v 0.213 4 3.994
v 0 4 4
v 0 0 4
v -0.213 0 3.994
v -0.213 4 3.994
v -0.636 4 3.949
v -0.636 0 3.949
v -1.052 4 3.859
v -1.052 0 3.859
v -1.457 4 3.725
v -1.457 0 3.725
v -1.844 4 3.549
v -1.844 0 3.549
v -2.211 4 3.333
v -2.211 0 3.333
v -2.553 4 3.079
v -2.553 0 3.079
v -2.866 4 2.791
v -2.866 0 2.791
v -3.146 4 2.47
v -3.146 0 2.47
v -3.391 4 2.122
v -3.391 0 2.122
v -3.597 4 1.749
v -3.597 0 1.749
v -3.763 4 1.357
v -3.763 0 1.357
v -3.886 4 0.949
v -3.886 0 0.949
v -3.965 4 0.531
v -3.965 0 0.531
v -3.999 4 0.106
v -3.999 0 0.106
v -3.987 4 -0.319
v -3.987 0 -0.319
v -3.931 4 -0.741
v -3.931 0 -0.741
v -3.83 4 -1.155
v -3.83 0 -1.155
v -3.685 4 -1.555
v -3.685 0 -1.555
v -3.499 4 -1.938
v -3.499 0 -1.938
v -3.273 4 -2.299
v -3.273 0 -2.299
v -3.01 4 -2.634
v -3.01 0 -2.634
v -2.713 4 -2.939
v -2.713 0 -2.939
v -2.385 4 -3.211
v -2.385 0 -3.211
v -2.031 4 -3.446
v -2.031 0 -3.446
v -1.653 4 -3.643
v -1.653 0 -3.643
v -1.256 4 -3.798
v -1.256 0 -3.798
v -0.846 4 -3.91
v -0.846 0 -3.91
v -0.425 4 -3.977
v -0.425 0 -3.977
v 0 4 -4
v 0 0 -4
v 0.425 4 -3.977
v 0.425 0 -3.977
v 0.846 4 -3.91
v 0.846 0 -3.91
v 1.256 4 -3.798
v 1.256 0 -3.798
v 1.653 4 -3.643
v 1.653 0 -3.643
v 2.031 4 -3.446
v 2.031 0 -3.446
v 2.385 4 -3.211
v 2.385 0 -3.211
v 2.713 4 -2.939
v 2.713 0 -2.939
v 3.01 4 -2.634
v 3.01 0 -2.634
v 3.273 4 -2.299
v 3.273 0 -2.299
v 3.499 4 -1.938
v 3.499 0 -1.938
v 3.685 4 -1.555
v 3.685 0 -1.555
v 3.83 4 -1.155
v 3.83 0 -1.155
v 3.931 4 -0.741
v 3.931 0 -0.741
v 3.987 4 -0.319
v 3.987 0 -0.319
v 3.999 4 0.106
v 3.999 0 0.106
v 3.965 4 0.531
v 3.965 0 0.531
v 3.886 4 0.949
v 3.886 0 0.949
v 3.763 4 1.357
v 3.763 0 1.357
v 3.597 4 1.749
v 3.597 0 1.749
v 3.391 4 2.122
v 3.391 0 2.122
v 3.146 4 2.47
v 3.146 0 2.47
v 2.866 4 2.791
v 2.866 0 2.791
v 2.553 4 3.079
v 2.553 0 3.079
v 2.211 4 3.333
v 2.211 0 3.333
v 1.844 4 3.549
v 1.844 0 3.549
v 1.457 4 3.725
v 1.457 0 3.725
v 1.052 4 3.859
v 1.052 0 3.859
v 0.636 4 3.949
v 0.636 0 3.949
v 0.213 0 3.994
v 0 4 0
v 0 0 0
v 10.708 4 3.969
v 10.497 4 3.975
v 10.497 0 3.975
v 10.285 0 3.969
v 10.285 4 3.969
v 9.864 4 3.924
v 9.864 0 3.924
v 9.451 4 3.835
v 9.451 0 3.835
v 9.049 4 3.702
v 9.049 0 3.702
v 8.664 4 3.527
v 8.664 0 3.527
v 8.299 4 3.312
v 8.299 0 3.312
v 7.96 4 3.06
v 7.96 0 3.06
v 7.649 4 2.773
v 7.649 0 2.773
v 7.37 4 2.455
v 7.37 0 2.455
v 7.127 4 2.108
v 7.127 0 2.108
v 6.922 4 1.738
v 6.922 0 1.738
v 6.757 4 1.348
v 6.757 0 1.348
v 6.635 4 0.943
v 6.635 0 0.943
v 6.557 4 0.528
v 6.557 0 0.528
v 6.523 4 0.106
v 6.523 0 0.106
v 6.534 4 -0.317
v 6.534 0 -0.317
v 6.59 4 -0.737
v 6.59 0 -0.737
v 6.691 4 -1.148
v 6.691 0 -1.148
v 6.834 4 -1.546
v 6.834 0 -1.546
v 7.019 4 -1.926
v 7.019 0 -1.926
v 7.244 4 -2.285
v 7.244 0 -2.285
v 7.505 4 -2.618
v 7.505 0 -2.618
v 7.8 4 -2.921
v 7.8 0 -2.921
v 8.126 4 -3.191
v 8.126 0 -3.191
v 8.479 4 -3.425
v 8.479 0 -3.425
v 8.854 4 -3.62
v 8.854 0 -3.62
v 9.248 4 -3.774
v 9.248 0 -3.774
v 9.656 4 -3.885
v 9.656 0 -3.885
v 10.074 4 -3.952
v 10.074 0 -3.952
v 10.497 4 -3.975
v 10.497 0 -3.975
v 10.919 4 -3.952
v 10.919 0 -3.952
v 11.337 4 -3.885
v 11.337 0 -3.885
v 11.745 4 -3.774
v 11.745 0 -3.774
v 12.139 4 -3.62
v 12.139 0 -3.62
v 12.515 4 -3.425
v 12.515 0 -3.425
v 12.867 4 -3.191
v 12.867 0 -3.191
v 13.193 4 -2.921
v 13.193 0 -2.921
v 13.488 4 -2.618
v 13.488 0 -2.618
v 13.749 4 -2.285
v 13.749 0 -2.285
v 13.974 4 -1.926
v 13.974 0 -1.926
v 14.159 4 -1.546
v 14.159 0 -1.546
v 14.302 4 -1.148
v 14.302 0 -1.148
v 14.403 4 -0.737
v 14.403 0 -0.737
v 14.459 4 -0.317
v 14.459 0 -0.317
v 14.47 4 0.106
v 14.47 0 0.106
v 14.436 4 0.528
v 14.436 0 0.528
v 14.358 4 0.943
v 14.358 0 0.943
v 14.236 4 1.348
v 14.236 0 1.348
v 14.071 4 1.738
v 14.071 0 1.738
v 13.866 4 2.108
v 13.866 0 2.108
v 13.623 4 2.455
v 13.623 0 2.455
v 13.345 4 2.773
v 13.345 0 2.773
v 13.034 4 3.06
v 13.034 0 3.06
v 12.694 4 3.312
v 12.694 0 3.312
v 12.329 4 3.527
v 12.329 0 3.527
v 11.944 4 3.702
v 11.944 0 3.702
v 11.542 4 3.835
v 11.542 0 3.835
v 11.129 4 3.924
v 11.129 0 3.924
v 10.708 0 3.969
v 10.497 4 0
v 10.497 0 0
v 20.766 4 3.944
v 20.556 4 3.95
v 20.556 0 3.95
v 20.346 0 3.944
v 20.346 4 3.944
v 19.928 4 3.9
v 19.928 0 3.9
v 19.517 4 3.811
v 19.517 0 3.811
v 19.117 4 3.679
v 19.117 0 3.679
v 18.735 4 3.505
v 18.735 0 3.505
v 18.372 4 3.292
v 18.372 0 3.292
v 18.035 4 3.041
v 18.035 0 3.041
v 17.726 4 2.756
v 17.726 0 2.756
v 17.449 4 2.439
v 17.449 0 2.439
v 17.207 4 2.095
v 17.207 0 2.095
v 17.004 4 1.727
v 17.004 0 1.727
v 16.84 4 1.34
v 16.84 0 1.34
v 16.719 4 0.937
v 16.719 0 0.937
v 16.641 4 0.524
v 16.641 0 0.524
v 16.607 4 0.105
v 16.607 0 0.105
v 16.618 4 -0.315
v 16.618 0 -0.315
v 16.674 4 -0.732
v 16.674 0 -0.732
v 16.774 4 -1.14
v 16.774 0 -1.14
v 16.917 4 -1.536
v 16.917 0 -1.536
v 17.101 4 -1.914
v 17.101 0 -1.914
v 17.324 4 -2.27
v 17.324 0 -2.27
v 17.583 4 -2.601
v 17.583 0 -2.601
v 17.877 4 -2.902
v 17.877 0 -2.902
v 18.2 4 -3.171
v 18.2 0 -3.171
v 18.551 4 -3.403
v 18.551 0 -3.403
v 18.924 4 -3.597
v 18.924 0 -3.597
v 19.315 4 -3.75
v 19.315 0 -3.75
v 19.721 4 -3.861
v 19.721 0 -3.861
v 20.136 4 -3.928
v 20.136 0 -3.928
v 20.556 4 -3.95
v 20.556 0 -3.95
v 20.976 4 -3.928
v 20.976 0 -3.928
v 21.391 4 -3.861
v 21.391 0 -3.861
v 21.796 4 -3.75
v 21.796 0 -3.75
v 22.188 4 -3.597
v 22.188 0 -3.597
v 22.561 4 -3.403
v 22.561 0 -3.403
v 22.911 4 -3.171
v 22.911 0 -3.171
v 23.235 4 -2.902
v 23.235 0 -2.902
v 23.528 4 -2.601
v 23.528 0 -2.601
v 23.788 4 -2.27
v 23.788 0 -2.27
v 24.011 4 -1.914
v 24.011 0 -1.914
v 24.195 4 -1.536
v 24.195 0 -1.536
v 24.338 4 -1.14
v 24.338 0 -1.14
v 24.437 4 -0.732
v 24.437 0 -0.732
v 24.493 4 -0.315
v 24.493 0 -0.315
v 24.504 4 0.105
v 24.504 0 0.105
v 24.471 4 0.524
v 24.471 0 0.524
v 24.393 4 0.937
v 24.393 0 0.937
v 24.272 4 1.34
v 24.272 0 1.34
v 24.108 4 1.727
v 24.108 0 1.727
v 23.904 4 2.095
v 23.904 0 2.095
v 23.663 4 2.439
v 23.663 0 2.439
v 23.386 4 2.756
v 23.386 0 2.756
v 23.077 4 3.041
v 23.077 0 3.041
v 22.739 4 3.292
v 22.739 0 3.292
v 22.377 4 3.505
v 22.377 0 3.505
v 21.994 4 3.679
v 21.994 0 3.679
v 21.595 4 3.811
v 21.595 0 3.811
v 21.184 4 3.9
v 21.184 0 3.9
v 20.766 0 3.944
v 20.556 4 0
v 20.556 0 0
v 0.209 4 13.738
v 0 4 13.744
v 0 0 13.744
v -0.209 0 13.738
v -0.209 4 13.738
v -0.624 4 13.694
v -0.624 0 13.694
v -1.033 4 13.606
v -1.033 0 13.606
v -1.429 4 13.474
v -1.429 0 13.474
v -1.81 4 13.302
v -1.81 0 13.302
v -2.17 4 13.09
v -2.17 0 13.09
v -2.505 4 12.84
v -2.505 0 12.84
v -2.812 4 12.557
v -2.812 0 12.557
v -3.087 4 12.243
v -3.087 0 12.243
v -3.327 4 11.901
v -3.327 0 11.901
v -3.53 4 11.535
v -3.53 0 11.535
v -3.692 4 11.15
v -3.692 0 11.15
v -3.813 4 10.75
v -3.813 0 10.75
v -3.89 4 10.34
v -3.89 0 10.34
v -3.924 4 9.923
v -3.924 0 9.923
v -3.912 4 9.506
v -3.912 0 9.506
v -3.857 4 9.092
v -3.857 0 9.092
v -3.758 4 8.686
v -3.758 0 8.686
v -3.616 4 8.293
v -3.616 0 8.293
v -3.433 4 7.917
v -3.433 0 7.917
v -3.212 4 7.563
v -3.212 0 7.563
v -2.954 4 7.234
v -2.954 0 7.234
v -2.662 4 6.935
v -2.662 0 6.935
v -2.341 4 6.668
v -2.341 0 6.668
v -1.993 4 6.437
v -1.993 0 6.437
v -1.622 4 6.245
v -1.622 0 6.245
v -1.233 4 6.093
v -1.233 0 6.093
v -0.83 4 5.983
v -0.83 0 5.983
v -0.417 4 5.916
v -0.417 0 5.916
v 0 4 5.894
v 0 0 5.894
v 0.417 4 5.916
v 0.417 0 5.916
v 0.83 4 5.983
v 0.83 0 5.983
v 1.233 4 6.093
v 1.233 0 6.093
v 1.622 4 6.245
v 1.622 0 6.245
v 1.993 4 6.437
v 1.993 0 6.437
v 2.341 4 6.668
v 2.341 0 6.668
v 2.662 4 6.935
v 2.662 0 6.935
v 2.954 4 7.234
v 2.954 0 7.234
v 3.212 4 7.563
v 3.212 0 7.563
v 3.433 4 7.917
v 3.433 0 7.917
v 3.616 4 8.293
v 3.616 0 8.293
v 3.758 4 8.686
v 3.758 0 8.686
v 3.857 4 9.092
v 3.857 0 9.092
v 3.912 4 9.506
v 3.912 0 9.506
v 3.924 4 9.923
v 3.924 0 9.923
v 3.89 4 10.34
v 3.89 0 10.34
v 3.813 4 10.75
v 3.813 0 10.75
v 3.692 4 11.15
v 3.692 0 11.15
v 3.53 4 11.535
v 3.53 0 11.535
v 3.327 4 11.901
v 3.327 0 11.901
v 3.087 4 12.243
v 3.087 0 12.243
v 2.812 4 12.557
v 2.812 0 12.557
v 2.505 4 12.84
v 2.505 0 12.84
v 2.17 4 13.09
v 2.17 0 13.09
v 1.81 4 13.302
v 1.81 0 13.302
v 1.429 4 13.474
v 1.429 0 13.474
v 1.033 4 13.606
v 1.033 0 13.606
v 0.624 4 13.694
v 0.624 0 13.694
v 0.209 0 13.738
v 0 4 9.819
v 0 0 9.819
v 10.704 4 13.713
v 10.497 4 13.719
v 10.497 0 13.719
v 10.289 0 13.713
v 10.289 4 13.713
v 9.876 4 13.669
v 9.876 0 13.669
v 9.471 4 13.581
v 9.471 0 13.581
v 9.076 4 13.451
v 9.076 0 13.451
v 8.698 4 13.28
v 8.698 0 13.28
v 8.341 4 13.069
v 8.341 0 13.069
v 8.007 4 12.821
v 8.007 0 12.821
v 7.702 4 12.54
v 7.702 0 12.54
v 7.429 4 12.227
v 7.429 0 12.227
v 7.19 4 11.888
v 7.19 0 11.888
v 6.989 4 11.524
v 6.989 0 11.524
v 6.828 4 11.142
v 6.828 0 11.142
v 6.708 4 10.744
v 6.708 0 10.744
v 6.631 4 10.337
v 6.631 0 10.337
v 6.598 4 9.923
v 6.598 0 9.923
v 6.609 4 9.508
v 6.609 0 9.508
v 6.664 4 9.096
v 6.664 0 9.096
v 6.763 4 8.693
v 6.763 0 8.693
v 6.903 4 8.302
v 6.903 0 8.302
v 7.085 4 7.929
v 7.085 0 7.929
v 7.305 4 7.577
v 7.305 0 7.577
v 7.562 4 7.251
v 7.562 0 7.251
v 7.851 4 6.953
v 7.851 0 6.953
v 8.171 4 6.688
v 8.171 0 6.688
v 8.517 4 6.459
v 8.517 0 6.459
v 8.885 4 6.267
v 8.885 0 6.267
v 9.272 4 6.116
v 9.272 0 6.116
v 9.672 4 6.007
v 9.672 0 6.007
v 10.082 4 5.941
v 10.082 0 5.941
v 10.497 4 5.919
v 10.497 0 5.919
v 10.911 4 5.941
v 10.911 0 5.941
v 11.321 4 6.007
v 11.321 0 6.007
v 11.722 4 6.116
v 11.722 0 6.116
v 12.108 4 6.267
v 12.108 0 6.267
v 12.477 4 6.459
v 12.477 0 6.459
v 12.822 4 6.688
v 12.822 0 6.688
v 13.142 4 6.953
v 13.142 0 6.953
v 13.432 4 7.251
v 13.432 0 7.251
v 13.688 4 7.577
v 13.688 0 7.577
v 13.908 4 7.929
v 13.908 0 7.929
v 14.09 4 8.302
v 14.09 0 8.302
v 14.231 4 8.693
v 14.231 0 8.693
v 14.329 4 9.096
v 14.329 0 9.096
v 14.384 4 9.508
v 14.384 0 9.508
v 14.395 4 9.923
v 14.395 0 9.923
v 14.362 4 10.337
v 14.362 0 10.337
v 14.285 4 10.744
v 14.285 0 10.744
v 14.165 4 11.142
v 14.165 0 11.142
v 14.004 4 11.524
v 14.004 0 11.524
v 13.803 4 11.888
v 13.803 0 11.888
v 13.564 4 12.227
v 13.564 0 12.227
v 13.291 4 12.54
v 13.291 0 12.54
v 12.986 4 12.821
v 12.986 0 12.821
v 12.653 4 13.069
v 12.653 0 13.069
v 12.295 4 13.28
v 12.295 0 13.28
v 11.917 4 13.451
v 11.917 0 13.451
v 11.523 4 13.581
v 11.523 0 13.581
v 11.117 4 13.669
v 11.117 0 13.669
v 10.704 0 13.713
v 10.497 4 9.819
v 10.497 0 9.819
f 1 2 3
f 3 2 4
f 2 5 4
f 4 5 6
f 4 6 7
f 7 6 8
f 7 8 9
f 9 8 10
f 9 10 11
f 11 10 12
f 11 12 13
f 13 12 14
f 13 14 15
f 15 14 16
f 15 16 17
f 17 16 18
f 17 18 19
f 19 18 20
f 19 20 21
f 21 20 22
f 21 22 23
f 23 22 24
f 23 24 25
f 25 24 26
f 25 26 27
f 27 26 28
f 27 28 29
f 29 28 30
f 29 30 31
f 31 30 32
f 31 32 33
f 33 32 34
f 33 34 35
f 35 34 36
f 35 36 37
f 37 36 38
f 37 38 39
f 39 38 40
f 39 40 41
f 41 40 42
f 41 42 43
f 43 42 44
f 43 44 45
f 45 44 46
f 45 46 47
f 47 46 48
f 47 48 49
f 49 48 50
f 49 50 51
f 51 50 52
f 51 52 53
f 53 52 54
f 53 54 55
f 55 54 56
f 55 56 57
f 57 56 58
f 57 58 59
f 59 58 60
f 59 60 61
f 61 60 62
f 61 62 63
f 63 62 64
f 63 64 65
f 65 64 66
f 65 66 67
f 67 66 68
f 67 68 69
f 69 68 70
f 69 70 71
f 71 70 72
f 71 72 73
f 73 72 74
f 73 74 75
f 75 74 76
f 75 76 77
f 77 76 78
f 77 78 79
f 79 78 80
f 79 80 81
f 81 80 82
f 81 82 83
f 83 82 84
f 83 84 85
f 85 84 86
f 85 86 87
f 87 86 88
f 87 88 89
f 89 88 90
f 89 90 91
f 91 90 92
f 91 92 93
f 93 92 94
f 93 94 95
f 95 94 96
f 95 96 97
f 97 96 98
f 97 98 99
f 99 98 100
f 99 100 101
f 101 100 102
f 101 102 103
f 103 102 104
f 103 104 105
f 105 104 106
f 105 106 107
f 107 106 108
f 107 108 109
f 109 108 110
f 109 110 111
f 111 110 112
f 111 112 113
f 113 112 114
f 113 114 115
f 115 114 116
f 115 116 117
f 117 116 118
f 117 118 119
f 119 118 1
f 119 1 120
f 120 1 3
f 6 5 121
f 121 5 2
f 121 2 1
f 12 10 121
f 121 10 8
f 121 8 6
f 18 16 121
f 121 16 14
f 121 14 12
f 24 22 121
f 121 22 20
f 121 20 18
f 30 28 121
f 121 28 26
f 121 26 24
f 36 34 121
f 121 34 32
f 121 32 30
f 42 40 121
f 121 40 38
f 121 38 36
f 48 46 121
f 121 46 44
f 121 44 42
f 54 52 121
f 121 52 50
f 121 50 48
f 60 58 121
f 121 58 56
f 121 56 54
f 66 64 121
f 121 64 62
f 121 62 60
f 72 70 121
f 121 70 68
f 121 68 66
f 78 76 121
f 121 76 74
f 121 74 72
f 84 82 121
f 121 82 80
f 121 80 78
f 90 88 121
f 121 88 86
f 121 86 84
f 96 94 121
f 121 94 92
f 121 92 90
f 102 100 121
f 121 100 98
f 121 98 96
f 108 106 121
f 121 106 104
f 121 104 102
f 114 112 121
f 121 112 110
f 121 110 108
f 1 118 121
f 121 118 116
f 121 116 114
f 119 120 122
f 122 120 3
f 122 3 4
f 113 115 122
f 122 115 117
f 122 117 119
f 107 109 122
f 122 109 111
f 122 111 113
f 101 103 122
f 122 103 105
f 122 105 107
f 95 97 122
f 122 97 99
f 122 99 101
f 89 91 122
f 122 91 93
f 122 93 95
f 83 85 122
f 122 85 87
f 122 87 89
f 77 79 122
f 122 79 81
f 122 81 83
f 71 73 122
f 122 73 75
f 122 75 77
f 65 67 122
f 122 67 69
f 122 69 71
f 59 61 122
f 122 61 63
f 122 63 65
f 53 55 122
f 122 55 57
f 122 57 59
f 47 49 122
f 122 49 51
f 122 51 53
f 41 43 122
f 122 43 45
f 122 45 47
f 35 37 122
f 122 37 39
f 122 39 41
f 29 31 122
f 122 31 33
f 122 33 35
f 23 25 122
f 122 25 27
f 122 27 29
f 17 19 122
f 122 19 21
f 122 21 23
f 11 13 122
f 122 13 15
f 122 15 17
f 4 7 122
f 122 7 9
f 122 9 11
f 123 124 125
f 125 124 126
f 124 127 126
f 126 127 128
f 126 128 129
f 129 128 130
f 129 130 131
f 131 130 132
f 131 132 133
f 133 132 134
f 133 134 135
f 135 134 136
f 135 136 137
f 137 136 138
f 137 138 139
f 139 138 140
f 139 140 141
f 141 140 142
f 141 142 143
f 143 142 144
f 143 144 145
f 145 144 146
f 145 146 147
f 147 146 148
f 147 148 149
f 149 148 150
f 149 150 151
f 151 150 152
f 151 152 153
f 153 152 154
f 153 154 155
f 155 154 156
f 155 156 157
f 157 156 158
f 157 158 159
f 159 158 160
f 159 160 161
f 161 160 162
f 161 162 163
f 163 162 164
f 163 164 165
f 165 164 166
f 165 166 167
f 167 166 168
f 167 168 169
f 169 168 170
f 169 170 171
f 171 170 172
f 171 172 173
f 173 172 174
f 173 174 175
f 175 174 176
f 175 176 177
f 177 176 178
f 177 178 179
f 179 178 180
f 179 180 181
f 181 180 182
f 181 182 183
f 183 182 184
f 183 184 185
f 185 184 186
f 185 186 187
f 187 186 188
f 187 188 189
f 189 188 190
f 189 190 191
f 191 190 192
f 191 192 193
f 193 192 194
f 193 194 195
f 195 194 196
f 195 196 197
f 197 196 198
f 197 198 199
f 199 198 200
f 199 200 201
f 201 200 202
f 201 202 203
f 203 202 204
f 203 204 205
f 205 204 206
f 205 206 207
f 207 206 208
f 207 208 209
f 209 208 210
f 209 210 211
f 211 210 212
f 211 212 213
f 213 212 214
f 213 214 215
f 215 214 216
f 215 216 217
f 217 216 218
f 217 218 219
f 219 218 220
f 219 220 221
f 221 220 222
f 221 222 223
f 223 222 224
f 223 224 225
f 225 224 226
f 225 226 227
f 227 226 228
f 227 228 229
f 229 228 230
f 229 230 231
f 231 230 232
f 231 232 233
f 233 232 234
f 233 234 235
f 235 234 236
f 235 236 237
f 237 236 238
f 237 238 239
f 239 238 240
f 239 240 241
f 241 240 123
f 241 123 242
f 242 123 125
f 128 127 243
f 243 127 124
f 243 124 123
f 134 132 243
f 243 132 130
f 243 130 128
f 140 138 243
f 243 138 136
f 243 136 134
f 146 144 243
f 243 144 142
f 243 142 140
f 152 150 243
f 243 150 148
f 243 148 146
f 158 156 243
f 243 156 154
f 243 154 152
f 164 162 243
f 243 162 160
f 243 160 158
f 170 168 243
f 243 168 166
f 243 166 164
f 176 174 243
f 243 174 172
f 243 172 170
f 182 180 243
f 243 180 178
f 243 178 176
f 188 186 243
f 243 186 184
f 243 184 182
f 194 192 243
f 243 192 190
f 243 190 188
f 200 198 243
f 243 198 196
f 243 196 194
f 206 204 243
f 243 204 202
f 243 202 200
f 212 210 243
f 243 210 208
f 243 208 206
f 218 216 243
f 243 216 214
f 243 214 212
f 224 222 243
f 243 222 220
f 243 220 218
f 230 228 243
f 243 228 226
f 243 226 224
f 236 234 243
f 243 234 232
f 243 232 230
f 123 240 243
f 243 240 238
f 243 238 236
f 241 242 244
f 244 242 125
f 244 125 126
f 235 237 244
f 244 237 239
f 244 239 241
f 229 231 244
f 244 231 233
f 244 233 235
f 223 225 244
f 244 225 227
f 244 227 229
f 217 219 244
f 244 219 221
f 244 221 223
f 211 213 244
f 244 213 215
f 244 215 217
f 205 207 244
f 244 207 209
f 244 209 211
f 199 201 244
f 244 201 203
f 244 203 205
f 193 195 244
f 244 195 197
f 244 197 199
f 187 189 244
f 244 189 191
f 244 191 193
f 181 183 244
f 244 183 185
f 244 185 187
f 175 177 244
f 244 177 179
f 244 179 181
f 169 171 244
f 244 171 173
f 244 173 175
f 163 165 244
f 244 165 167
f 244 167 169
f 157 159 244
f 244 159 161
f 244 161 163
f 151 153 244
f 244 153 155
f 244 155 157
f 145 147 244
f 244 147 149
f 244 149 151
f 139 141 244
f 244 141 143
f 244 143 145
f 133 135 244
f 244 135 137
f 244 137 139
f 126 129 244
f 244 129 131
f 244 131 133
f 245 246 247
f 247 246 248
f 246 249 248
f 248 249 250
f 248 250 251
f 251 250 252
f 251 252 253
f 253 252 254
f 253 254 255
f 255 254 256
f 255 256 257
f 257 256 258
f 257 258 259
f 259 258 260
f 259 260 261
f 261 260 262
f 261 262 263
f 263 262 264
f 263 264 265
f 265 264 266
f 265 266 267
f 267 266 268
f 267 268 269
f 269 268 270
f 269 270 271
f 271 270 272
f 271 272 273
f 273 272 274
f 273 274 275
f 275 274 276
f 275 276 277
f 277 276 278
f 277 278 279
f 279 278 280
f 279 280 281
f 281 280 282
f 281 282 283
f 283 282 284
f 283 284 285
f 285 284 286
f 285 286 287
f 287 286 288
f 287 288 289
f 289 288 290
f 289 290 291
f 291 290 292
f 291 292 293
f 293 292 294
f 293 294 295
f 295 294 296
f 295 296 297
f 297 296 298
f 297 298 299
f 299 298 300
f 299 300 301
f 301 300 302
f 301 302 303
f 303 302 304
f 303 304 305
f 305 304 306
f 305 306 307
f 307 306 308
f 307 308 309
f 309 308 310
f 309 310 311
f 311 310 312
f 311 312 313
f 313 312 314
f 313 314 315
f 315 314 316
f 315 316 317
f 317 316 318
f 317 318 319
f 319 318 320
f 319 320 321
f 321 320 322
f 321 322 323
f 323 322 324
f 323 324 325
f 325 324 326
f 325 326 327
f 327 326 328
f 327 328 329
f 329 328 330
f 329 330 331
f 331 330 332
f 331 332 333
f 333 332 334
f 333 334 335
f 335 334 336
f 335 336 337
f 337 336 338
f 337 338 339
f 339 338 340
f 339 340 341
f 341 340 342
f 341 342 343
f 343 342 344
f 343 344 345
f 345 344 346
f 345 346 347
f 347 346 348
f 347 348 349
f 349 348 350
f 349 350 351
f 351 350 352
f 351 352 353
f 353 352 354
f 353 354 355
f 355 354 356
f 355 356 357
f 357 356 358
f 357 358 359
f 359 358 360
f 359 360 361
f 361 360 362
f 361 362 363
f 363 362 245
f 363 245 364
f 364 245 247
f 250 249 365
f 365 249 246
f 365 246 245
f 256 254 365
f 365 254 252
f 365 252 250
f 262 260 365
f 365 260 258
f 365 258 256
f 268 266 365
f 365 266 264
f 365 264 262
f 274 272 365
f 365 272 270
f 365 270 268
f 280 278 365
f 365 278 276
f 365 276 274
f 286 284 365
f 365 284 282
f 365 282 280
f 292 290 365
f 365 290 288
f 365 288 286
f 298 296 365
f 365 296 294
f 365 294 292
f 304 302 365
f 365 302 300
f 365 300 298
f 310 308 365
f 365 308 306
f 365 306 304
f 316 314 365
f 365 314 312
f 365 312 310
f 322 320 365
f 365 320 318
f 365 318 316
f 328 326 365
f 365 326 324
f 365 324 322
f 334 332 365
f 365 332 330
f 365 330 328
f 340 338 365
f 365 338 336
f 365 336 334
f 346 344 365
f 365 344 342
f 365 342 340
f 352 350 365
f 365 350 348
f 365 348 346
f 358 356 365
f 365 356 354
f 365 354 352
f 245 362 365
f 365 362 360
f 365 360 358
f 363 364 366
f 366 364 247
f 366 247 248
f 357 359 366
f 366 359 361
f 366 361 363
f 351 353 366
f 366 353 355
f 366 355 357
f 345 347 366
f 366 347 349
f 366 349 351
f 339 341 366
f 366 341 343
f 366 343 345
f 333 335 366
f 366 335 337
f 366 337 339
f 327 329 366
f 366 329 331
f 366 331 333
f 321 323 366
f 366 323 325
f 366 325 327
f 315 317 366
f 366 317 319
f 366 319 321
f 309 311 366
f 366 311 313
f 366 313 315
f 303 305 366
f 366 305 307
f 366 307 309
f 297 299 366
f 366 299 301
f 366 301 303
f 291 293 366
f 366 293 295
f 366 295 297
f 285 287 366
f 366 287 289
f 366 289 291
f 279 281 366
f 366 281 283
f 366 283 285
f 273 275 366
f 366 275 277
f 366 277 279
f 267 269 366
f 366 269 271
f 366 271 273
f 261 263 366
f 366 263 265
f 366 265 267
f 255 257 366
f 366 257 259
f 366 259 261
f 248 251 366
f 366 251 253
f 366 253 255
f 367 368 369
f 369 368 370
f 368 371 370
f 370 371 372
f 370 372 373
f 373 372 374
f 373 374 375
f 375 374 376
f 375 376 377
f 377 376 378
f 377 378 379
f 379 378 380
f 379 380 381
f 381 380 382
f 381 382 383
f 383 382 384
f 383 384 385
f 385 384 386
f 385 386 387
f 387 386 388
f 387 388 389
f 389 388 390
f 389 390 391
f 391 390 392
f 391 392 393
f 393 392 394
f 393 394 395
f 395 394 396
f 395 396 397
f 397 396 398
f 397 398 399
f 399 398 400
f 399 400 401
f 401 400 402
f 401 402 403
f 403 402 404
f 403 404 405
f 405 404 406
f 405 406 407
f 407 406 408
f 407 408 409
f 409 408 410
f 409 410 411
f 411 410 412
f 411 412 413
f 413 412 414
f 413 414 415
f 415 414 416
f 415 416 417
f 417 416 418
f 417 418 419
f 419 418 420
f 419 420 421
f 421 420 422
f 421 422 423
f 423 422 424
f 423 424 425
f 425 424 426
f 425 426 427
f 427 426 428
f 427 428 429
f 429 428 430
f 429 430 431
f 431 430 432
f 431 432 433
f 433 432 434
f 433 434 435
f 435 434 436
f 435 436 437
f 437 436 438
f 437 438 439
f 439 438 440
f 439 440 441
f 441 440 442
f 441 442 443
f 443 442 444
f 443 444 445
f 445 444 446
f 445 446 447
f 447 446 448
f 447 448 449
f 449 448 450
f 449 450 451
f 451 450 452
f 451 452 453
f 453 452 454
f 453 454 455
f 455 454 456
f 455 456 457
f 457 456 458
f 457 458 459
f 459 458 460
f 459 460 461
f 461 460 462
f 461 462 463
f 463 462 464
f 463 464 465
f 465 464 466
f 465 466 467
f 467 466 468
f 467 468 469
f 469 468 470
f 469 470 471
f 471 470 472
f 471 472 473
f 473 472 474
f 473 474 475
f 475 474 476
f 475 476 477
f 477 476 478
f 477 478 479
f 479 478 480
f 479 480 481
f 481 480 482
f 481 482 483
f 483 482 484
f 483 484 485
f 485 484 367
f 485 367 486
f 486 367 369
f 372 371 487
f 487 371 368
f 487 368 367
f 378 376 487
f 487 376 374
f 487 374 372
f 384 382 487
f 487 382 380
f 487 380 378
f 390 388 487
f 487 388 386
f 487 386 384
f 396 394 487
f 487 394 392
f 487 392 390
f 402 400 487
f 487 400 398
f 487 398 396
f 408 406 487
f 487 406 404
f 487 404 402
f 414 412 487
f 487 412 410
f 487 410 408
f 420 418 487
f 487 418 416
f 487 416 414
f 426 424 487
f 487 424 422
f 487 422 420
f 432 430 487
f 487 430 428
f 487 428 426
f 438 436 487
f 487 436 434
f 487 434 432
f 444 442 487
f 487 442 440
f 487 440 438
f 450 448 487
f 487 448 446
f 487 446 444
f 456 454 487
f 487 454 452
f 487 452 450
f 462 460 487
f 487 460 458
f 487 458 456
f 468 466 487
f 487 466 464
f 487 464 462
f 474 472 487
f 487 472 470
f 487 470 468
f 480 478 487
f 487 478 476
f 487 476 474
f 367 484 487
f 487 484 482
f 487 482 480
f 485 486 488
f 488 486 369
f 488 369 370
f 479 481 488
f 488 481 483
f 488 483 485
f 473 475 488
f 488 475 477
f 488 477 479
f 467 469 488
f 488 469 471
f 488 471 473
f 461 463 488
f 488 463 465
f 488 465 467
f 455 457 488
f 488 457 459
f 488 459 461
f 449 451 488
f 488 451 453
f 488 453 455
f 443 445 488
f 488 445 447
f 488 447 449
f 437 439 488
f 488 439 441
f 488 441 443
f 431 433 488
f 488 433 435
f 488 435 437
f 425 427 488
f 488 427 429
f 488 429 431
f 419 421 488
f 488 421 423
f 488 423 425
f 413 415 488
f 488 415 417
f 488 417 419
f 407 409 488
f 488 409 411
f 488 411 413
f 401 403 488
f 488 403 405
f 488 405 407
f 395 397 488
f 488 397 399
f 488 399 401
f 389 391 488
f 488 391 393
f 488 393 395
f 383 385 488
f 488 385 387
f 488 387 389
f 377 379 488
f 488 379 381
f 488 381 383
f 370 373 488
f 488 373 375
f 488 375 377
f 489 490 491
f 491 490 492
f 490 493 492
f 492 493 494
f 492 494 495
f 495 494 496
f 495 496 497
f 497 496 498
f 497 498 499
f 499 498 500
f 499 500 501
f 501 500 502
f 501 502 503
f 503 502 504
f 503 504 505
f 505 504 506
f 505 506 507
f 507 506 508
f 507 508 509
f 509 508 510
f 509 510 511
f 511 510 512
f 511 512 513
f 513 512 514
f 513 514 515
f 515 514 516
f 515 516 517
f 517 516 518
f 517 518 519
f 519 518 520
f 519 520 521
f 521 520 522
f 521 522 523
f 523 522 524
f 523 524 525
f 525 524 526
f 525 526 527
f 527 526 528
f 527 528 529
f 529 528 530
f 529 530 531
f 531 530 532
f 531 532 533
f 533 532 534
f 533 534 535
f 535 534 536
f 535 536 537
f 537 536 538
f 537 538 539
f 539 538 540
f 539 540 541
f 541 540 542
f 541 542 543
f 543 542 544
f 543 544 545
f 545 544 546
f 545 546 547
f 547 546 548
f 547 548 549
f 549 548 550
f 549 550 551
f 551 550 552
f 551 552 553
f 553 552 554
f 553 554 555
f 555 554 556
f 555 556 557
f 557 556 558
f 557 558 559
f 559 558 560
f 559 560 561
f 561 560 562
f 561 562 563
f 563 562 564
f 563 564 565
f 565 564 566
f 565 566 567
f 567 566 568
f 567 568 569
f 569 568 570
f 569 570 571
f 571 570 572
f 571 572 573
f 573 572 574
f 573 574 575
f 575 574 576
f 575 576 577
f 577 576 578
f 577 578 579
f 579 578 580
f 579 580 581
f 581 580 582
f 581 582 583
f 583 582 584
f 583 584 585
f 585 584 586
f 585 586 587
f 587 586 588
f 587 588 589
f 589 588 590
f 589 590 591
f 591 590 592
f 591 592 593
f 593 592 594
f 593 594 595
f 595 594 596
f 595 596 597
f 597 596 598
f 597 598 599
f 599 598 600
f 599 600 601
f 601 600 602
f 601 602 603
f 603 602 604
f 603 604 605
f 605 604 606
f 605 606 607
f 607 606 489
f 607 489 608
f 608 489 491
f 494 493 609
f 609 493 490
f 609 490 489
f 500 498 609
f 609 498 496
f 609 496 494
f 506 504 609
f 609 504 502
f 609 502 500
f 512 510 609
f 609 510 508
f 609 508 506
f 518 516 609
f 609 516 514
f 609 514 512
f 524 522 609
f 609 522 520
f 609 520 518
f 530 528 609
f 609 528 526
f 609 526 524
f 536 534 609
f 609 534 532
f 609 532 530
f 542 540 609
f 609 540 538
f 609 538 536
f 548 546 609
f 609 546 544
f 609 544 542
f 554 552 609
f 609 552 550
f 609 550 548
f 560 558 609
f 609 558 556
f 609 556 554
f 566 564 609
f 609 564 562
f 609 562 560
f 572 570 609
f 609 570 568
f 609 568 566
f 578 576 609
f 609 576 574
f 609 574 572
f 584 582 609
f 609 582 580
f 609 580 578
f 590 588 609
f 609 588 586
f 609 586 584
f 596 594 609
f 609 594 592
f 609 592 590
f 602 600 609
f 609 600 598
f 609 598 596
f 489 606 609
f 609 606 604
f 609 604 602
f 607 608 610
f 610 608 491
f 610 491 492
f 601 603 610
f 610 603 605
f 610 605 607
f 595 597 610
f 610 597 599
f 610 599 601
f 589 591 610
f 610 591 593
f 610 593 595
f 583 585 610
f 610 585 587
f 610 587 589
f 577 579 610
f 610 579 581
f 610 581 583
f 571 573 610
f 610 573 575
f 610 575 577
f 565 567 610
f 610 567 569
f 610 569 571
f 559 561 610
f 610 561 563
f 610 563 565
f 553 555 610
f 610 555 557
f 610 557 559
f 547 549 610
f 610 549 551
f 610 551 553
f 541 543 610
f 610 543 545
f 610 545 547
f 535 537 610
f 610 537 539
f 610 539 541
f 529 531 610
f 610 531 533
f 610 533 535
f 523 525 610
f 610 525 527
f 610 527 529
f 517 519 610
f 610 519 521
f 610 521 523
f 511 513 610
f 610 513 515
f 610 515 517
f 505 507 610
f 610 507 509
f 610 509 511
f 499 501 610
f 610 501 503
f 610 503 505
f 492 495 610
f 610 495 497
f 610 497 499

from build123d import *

# Parameters (mm, degrees)
SKETCH1_R             = 4
BOSS_EXTRUDE1_DEPTH   = 4
SKETCH1_R_2           = 3.975
BOSS_EXTRUDE1_2_DEPTH = 4
SKETCH1_R_3           = 3.95
BOSS_EXTRUDE1_3_DEPTH = 4
SKETCH1_R_4           = 3.925
BOSS_EXTRUDE1_4_DEPTH = 4
SKETCH1_R_5           = 3.9
BOSS_EXTRUDE1_5_DEPTH = 4


with BuildPart() as part:
    # Sketch1 → Boss-Extrude1 (new body)
    with BuildSketch(Plane(origin=(0, 0, 0), x_dir=(1, 0, 0), z_dir=(0, 1, 0))):
        with Locations(Location((0, 0, 0), (0, 0, 270))):
            Circle(SKETCH1_R)
    extrude(amount=BOSS_EXTRUDE1_DEPTH)


with BuildPart() as body_2:
    # Sketch1 → Boss-Extrude1 2 (new body)
    with BuildSketch(Plane(origin=(0, 0, 0), x_dir=(1, 0, 0), z_dir=(0, 1, 0))):
        with Locations(Location((10.4966154, 0, 0), (0, 0, 270))):
            Circle(SKETCH1_R_2)
    extrude(amount=BOSS_EXTRUDE1_2_DEPTH)


with BuildPart() as body_3:
    # Sketch1 → Boss-Extrude1 3 (new body)
    with BuildSketch(Plane(origin=(0, 0, 0), x_dir=(1, 0, 0), z_dir=(0, 1, 0))):
        with Locations(Location((20.55583574, 0, 0), (0, 0, 270))):
            Circle(SKETCH1_R_3)
    extrude(amount=BOSS_EXTRUDE1_3_DEPTH)


with BuildPart() as body_4:
    # Sketch1 → Boss-Extrude1 4 (new body)
    with BuildSketch(Plane(origin=(0, 0, 0), x_dir=(1, 0, 0), z_dir=(0, 1, 0))):
        with Locations(Location((0, -9.818892144, 0), (0, 0, 270))):
            Circle(SKETCH1_R_4)
    extrude(amount=BOSS_EXTRUDE1_4_DEPTH)


with BuildPart() as body_5:
    # Sketch1 → Boss-Extrude1 5 (new body)
    with BuildSketch(Plane(origin=(0, 0, 0), x_dir=(1, 0, 0), z_dir=(0, 1, 0))):
        with Locations(Location((10.4966154, -9.818892144, 0), (0, 0, 270))):
            Circle(SKETCH1_R_5)
    extrude(amount=BOSS_EXTRUDE1_5_DEPTH)


solid = Compound([part.part, body_2.part, body_3.part, body_4.part, body_5.part])
